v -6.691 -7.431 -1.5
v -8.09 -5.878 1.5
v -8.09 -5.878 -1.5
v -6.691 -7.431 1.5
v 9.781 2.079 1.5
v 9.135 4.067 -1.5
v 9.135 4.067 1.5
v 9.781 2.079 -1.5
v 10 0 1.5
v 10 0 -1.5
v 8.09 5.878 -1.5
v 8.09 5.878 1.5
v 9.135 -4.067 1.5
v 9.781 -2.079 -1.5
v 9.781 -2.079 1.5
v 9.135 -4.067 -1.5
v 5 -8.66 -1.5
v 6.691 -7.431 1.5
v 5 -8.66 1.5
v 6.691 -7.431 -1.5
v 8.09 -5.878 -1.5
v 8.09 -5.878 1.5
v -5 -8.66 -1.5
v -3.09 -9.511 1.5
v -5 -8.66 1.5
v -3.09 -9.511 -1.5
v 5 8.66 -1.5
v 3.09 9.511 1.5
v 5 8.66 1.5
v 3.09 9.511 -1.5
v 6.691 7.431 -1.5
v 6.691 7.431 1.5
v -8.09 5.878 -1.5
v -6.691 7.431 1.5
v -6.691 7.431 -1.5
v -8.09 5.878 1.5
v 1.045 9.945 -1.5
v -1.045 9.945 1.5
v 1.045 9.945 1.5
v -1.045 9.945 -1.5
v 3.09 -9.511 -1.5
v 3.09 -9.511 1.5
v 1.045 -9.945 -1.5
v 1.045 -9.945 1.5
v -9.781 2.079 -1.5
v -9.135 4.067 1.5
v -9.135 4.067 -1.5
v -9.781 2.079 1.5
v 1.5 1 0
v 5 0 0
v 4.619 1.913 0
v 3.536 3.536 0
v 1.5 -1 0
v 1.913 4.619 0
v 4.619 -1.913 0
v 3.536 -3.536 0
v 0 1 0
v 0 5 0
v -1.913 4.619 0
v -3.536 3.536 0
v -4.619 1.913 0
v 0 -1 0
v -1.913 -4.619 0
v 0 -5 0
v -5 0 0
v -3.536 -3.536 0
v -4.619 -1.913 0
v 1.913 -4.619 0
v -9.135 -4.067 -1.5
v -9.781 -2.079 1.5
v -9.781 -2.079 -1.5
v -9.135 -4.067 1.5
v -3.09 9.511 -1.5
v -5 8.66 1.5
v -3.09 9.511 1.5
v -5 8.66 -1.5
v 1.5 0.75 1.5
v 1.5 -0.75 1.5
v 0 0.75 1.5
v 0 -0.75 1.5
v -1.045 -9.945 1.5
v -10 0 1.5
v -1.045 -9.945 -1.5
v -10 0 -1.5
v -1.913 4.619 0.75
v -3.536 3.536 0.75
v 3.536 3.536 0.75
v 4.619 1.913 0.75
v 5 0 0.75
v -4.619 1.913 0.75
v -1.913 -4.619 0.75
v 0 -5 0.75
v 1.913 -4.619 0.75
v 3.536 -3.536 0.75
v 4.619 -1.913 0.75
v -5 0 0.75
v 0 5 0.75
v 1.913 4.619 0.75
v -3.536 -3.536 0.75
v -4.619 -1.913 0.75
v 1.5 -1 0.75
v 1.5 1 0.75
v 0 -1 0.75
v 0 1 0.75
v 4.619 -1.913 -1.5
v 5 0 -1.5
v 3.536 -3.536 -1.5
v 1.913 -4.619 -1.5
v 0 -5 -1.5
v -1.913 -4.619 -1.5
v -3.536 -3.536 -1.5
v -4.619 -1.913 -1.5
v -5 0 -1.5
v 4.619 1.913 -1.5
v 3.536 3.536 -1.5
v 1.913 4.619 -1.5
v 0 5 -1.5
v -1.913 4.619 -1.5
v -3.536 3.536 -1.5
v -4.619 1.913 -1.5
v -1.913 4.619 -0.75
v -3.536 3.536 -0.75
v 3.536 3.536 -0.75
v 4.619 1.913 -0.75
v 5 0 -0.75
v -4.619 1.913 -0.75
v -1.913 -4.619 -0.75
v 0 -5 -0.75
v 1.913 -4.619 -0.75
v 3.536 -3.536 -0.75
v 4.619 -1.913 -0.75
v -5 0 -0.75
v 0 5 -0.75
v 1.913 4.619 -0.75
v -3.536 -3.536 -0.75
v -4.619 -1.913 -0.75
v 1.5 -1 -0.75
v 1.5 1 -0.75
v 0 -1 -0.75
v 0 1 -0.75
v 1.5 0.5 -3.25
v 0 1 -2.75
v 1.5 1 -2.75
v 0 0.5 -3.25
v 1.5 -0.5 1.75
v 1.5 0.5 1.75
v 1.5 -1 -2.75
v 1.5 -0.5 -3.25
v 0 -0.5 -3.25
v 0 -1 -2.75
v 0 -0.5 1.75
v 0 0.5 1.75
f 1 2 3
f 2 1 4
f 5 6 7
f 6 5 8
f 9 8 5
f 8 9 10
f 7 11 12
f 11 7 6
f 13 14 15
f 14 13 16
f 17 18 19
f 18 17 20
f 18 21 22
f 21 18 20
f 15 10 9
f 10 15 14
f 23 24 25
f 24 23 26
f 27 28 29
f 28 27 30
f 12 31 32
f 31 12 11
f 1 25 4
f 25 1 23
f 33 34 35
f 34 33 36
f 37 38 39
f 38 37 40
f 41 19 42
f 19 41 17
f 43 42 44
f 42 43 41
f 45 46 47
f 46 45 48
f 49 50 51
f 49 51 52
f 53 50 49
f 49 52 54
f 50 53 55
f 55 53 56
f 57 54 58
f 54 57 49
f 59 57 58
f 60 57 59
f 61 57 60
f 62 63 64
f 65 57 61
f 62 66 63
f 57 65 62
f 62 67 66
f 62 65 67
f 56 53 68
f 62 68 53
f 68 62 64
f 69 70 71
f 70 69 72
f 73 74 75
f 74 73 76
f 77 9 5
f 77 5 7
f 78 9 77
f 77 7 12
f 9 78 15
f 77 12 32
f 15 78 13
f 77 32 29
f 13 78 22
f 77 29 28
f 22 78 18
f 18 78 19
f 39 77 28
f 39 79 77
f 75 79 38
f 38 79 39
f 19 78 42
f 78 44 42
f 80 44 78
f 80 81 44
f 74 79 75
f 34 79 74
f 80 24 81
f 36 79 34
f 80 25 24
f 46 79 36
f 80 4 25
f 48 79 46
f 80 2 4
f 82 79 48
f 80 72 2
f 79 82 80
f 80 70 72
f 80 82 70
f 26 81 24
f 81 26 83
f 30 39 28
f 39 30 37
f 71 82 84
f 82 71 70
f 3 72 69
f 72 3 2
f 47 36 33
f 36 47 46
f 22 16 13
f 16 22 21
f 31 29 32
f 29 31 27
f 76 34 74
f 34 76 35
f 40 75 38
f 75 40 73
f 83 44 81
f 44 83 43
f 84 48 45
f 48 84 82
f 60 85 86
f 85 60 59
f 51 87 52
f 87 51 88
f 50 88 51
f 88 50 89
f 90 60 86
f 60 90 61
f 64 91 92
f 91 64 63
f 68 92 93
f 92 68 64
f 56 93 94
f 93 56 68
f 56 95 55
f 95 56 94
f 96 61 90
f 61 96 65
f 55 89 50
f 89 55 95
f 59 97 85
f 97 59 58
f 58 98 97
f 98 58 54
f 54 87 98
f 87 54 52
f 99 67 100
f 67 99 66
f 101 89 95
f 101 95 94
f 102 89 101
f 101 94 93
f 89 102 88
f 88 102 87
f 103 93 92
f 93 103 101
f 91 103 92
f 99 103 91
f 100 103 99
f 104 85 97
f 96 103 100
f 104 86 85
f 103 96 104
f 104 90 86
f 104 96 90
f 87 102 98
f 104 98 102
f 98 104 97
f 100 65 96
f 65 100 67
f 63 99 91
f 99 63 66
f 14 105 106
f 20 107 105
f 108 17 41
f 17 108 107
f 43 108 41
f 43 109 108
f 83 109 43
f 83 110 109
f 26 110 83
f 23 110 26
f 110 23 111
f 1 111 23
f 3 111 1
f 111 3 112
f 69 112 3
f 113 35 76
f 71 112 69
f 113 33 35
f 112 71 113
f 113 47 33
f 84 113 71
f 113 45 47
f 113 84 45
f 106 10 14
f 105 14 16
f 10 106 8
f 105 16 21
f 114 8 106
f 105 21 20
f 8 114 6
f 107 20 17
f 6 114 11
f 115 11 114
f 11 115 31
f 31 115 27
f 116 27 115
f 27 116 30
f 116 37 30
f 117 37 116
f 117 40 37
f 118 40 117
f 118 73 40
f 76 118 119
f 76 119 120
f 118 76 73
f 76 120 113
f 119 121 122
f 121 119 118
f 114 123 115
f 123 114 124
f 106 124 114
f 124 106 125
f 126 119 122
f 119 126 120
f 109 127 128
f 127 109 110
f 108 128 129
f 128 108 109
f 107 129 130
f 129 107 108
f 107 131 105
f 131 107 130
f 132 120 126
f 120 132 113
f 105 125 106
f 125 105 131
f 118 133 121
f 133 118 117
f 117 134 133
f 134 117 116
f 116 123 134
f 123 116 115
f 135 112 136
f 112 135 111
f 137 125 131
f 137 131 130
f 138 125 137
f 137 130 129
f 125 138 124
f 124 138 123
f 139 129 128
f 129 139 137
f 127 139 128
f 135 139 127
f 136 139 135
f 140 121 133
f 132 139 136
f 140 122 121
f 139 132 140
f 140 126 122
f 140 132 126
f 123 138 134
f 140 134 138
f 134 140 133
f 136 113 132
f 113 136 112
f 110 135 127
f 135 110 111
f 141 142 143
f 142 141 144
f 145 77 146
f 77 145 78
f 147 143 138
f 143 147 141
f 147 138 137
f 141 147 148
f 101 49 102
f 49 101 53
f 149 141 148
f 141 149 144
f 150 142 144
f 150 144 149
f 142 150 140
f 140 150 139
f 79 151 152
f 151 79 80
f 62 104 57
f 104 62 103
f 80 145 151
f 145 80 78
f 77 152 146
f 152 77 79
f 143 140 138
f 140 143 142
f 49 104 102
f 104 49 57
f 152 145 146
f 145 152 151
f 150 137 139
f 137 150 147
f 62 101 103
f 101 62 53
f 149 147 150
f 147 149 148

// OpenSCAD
// Parameters for the spacer ring
module spacer_ring(inner_diameter, outer_diameter, thickness) {
    difference() {
        // Adjusted thickness to match the original model
        cylinder(h = thickness, r = outer_diameter / 2, center = true);
        translate([0, 0, -thickness / 2])
            // Reduced fillet size to smooth the edges and ensure flat surface
            cylinder(h = thickness, r = inner_diameter / 2, center = true);
    }
}

// Parameters for the connector bridge
module connector_bridge(width, height, curvature) {
    translate([0, 0, -height / 2])
        rotate([0, 90, 0])
            linear_extrude(height = height)
                offset(r = curvature / 2) // Reduced curvature for a more subtle profile
                    square([width, curvature], center = true); // Adjusted dimensions for slender appearance
}

// Dimensions
spacer_ring_inner_diameter = 10;
spacer_ring_outer_diameter = 20;
spacer_ring_thickness = 1.5; // Reduced thickness for a thinner profile

connector_bridge_width = 4; // Reduced width for a slender appearance
connector_bridge_height = 1.5; // Reduced height for a less bulky profile
connector_bridge_curvature = 1; // Reduced curvature for subtlety

// Assembly
module flexible_coupling() {
    // Layer 1: Top spacer ring
    translate([0, 0, spacer_ring_thickness / 2])
        spacer_ring(spacer_ring_inner_diameter, spacer_ring_outer_diameter, spacer_ring_thickness);

    // Layer 2: Connector bridge
    translate([0, 0, 0])
        connector_bridge(connector_bridge_width, connector_bridge_height, connector_bridge_curvature);

    // Layer 3: Bottom spacer ring
    translate([0, 0, -spacer_ring_thickness / 2])
        spacer_ring(spacer_ring_inner_diameter, spacer_ring_outer_diameter, spacer_ring_thickness);
}

// Render the model
flexible_coupling();
